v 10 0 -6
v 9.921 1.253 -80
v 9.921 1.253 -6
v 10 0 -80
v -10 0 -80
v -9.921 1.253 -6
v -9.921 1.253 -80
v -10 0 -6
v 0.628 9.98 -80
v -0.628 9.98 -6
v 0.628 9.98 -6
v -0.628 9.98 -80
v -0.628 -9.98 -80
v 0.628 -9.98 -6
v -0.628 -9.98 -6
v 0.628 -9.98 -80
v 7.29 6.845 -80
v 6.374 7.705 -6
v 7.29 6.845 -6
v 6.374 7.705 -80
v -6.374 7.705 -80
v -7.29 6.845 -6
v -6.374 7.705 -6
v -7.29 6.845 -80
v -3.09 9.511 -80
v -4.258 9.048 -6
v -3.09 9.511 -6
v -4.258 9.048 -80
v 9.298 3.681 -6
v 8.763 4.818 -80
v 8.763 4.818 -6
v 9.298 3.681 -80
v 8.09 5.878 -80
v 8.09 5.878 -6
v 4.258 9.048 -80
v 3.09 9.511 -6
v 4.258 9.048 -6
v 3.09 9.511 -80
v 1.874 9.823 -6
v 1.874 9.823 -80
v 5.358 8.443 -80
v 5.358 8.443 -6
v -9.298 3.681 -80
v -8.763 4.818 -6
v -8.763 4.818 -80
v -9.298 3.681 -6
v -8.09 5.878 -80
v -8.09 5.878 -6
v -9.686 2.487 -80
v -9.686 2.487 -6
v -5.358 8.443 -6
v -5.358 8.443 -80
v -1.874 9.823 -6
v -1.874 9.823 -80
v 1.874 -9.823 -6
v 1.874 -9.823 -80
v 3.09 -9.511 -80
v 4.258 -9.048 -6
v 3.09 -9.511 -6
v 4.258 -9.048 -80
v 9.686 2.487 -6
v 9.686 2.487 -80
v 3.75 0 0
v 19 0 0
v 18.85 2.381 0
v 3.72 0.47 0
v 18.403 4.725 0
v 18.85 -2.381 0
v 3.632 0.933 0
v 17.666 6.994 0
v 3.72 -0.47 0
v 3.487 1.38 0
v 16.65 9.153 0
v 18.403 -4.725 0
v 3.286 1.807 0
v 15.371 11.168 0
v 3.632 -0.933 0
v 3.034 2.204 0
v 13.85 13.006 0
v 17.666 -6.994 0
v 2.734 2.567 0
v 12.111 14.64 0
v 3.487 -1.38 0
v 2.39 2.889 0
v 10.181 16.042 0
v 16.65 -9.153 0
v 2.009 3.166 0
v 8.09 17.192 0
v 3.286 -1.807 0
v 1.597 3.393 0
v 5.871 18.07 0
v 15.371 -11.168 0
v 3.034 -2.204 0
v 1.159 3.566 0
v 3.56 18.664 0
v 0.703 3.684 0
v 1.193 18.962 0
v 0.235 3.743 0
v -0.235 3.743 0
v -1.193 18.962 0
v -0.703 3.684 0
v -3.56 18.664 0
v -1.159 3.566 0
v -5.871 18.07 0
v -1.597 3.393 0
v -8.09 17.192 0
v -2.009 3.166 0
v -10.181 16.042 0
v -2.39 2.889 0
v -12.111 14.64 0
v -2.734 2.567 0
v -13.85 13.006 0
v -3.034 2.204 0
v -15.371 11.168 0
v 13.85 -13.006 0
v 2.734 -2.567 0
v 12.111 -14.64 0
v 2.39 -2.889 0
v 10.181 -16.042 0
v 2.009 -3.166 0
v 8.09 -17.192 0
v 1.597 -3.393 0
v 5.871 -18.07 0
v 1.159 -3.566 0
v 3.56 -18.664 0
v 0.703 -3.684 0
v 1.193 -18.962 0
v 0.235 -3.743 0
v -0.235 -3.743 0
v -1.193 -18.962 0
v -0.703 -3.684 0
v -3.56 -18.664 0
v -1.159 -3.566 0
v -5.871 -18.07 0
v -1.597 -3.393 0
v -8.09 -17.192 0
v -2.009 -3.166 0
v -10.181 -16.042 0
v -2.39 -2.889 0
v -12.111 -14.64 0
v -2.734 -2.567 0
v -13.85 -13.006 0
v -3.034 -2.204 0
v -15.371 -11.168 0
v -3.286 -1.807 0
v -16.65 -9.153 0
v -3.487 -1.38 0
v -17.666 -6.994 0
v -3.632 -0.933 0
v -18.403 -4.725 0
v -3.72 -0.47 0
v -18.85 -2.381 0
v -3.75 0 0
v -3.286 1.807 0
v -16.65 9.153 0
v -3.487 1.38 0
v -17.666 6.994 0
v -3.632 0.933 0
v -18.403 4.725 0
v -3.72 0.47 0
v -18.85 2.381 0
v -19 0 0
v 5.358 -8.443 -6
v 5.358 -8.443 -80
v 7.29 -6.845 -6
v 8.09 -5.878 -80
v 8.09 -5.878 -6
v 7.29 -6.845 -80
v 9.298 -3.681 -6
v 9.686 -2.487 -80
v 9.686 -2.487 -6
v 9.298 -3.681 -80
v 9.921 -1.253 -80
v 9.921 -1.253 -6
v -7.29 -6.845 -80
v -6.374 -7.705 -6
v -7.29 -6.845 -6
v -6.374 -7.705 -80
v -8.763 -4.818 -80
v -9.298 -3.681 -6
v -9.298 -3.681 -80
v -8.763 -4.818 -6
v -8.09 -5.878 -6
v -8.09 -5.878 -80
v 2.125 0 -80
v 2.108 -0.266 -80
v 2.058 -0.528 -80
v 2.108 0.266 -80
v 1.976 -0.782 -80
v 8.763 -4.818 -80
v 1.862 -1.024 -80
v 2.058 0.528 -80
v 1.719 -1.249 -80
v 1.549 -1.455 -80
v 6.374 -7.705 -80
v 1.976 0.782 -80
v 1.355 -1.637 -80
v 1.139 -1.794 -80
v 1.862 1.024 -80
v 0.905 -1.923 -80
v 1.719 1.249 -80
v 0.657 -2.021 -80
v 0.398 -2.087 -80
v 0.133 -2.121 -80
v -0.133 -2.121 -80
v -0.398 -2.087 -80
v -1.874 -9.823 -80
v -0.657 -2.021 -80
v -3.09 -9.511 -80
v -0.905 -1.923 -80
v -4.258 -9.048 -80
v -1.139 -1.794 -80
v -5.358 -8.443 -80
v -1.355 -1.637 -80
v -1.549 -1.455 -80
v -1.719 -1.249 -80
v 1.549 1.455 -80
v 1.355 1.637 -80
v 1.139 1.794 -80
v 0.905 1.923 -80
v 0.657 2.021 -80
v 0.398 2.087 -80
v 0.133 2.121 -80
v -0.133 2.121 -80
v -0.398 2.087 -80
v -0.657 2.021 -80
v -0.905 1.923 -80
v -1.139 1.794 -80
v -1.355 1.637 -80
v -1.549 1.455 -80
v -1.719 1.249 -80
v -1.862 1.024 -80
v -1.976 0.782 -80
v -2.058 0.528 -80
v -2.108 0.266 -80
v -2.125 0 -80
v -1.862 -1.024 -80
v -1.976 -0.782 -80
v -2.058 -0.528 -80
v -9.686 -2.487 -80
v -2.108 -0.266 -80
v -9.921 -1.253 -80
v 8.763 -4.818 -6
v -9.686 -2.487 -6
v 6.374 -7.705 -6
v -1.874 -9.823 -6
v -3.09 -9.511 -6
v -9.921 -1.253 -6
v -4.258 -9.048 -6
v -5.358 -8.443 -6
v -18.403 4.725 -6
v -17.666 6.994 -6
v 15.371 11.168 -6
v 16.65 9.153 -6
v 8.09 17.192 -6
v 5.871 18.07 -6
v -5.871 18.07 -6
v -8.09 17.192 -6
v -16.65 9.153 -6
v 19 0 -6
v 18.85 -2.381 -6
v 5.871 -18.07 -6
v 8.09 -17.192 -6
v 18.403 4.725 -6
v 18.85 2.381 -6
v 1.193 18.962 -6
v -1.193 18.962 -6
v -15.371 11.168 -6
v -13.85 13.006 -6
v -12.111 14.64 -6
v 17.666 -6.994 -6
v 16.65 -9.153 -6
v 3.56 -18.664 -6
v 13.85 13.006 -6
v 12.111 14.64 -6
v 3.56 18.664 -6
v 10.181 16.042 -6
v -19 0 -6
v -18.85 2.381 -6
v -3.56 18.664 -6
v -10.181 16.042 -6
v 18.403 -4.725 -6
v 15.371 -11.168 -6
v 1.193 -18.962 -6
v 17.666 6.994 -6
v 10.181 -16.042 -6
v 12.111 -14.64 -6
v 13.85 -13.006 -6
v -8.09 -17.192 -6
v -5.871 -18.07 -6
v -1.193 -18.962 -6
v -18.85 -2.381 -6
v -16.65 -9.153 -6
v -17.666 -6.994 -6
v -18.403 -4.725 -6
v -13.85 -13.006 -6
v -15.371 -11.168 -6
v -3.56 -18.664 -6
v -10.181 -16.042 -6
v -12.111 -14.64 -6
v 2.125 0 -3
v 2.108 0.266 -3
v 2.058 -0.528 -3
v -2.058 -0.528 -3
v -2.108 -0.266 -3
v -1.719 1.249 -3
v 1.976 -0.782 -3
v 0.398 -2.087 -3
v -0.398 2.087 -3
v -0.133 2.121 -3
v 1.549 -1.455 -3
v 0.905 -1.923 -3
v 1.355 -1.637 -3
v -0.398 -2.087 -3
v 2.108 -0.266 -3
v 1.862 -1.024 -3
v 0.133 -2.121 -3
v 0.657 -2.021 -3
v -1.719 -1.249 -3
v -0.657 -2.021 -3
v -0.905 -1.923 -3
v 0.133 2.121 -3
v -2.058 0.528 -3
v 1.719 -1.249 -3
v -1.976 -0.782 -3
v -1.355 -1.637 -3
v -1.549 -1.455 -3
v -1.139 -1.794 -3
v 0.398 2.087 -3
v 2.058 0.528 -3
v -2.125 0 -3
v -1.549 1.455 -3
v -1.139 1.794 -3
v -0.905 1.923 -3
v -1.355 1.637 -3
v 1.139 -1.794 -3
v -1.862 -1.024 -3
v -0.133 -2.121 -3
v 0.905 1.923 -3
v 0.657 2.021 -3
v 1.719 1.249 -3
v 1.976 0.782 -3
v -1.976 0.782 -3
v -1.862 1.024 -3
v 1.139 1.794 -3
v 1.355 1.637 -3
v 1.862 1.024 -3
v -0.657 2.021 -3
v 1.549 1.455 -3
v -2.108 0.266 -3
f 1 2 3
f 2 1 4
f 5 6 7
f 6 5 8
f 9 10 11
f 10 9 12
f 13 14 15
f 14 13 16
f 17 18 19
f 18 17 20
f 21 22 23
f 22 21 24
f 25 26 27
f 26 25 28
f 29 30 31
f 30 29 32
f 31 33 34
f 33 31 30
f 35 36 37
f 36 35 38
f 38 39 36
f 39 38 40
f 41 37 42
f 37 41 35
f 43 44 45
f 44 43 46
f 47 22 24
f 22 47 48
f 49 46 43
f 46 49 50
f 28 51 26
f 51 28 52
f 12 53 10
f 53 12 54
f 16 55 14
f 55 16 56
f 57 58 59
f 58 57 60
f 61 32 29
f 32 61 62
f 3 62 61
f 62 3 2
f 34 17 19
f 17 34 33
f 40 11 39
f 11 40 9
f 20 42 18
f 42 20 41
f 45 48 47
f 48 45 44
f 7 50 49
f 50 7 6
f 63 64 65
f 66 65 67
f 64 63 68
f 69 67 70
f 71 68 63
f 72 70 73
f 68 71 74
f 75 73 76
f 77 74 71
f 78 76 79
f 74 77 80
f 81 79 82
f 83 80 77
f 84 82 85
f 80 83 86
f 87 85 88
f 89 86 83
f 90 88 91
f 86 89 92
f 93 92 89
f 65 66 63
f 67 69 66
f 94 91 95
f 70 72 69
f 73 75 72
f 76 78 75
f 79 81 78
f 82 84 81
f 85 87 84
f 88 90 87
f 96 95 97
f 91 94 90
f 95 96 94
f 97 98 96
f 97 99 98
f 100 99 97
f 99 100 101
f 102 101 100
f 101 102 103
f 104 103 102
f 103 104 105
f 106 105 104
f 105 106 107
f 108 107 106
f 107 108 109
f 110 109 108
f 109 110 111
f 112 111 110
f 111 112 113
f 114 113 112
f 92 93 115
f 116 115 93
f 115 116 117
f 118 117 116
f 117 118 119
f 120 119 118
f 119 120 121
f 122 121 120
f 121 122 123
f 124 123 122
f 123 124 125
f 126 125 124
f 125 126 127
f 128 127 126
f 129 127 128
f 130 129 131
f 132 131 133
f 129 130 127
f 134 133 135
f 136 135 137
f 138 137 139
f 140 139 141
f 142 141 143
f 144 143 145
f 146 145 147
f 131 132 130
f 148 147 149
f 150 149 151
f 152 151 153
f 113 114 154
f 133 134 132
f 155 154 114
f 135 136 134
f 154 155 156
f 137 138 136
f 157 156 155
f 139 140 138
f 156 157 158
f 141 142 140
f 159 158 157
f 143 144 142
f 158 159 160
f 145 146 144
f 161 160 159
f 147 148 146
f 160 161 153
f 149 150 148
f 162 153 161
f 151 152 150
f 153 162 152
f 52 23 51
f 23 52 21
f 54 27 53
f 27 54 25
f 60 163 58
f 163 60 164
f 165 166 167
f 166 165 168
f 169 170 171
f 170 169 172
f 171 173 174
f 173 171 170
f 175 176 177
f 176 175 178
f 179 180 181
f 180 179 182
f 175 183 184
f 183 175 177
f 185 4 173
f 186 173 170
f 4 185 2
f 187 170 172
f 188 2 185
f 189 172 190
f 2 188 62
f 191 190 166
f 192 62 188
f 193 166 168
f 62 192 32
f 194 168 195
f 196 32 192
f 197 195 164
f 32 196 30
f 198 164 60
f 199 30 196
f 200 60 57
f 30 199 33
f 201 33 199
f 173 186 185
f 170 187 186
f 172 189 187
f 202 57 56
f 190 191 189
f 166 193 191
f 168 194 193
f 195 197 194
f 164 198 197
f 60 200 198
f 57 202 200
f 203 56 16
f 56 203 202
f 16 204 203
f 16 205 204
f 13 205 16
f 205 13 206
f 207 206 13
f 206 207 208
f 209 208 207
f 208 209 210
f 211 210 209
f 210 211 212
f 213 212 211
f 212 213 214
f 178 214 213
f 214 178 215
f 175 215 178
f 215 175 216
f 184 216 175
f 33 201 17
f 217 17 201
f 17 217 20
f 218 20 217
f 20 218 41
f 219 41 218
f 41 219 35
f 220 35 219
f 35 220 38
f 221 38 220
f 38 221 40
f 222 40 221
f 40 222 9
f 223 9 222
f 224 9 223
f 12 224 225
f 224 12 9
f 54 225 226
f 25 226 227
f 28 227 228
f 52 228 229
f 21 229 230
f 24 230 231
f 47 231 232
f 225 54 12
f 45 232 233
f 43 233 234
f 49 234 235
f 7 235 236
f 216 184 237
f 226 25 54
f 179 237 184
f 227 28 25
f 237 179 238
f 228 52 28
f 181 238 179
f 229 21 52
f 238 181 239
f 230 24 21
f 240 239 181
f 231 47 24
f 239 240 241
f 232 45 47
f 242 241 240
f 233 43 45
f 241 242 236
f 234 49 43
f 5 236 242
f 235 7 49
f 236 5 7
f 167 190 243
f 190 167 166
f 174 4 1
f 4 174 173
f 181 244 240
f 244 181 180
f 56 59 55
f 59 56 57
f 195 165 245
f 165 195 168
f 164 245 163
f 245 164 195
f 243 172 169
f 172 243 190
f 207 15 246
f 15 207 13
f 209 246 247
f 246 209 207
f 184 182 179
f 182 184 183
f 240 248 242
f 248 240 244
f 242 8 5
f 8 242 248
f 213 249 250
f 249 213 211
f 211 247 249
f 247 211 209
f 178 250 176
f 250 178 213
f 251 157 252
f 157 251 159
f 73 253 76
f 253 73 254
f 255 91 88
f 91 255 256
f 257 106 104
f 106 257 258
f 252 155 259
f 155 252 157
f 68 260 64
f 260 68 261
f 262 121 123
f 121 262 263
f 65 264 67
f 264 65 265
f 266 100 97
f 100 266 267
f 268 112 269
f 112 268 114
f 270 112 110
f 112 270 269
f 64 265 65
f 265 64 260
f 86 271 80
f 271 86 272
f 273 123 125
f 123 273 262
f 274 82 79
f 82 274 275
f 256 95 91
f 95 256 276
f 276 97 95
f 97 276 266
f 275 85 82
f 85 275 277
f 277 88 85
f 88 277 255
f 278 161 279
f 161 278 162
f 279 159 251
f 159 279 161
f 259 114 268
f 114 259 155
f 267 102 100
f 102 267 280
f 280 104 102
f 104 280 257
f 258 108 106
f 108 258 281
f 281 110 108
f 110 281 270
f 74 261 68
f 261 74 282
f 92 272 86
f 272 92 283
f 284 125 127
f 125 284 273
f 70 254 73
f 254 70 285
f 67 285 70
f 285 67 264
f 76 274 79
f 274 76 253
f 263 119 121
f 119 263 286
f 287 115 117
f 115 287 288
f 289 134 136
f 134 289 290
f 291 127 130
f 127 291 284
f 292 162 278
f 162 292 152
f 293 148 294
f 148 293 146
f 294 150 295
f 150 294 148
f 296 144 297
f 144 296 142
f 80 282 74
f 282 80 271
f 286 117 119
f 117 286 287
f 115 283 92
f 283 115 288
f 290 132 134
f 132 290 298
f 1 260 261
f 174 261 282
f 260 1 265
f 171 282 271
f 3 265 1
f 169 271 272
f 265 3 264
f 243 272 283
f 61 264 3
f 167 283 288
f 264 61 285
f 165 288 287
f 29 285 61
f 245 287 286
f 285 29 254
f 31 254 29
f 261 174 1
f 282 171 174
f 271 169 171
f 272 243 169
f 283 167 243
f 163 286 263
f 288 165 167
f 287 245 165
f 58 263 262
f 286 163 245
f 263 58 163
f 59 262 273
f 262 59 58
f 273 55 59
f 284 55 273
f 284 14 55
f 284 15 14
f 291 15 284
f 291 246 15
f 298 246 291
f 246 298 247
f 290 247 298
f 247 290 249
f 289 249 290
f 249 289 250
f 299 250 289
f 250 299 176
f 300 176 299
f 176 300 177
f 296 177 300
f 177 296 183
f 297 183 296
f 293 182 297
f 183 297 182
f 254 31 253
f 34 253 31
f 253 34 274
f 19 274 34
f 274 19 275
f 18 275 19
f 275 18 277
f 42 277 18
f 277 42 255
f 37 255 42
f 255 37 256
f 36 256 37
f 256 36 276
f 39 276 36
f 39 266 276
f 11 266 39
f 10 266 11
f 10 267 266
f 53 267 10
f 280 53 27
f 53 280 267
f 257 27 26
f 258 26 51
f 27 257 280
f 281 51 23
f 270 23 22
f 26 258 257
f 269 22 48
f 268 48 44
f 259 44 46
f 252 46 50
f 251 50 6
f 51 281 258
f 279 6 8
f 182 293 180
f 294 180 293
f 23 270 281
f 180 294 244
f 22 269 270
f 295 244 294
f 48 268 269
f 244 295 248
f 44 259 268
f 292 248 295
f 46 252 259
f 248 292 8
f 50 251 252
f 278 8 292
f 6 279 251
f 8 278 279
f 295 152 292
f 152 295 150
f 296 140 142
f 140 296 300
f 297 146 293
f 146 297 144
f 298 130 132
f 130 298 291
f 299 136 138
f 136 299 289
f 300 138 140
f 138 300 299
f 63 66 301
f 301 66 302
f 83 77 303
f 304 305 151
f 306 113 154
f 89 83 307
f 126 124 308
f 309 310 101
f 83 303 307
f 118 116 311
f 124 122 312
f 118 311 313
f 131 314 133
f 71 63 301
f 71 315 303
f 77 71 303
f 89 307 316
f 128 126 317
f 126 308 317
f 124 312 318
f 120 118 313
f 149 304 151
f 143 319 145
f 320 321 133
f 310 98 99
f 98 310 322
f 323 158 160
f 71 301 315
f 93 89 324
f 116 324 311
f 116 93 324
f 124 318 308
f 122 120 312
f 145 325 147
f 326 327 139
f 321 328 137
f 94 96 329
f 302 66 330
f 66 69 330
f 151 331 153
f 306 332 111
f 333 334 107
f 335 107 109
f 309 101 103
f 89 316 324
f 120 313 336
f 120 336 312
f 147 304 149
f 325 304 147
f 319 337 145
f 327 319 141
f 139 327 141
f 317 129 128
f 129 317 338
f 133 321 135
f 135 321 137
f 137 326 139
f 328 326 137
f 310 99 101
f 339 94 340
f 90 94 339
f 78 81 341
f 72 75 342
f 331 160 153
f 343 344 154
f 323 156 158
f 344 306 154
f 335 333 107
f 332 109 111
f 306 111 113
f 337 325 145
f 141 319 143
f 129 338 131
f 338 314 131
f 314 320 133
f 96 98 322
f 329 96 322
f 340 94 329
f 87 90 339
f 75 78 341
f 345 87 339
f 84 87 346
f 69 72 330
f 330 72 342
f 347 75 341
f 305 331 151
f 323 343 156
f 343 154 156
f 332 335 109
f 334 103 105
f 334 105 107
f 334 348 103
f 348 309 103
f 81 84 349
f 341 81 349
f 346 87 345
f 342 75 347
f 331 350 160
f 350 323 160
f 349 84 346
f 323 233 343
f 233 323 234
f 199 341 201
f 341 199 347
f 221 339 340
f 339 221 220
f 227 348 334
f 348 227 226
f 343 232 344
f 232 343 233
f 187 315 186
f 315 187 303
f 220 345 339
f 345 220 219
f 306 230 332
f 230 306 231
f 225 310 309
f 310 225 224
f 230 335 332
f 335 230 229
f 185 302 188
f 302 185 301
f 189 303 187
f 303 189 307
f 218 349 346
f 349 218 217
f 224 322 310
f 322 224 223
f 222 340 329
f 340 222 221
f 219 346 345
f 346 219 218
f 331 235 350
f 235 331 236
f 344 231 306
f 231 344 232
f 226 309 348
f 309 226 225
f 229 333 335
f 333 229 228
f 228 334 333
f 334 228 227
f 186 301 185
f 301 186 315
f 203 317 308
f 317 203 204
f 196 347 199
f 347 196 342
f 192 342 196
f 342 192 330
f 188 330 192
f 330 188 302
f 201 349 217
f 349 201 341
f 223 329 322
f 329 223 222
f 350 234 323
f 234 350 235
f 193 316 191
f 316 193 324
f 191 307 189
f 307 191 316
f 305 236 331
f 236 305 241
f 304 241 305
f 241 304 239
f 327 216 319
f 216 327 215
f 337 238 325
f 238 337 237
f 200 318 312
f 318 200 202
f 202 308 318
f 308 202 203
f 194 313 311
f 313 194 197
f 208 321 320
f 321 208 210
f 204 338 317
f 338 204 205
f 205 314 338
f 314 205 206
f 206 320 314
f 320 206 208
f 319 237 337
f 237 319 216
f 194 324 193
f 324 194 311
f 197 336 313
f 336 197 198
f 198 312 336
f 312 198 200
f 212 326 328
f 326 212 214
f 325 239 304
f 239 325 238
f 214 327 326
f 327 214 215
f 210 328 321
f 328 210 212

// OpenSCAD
$fn = 50;


difference() {
	union() {
		translate(v = [0, 0, -80.0000000000]) {
			cylinder(h = 80, r = 10.0000000000);
		}
		translate(v = [0, 0, -6.0000000000]) {
			cylinder(h = 6, r = 19.0000000000);
		}
	}
	union() {
		translate(v = [0, 0, 0]) {
			rotate(a = [0, 0, 0]) {
				difference() {
					union() {
						#translate(v = [0, 0, -80.0000000000]) {
							cylinder(h = 80, r = 2.0000000000);
						}
						#translate(v = [0, 0, -3]) {
							cylinder(h = 3, r = 10.0000000000, r1 = 2.1250000000, r2 = 3.7500000000);
						}
						#translate(v = [0, 0, -80.0000000000]) {
							cylinder(h = 80, r = 2.1250000000);
						}
						#translate(v = [0, 0, -80.0000000000]) {
							cylinder(h = 80, r = 2.0000000000);
						}
					}
					union();
				}
			}
		}
	}
}
